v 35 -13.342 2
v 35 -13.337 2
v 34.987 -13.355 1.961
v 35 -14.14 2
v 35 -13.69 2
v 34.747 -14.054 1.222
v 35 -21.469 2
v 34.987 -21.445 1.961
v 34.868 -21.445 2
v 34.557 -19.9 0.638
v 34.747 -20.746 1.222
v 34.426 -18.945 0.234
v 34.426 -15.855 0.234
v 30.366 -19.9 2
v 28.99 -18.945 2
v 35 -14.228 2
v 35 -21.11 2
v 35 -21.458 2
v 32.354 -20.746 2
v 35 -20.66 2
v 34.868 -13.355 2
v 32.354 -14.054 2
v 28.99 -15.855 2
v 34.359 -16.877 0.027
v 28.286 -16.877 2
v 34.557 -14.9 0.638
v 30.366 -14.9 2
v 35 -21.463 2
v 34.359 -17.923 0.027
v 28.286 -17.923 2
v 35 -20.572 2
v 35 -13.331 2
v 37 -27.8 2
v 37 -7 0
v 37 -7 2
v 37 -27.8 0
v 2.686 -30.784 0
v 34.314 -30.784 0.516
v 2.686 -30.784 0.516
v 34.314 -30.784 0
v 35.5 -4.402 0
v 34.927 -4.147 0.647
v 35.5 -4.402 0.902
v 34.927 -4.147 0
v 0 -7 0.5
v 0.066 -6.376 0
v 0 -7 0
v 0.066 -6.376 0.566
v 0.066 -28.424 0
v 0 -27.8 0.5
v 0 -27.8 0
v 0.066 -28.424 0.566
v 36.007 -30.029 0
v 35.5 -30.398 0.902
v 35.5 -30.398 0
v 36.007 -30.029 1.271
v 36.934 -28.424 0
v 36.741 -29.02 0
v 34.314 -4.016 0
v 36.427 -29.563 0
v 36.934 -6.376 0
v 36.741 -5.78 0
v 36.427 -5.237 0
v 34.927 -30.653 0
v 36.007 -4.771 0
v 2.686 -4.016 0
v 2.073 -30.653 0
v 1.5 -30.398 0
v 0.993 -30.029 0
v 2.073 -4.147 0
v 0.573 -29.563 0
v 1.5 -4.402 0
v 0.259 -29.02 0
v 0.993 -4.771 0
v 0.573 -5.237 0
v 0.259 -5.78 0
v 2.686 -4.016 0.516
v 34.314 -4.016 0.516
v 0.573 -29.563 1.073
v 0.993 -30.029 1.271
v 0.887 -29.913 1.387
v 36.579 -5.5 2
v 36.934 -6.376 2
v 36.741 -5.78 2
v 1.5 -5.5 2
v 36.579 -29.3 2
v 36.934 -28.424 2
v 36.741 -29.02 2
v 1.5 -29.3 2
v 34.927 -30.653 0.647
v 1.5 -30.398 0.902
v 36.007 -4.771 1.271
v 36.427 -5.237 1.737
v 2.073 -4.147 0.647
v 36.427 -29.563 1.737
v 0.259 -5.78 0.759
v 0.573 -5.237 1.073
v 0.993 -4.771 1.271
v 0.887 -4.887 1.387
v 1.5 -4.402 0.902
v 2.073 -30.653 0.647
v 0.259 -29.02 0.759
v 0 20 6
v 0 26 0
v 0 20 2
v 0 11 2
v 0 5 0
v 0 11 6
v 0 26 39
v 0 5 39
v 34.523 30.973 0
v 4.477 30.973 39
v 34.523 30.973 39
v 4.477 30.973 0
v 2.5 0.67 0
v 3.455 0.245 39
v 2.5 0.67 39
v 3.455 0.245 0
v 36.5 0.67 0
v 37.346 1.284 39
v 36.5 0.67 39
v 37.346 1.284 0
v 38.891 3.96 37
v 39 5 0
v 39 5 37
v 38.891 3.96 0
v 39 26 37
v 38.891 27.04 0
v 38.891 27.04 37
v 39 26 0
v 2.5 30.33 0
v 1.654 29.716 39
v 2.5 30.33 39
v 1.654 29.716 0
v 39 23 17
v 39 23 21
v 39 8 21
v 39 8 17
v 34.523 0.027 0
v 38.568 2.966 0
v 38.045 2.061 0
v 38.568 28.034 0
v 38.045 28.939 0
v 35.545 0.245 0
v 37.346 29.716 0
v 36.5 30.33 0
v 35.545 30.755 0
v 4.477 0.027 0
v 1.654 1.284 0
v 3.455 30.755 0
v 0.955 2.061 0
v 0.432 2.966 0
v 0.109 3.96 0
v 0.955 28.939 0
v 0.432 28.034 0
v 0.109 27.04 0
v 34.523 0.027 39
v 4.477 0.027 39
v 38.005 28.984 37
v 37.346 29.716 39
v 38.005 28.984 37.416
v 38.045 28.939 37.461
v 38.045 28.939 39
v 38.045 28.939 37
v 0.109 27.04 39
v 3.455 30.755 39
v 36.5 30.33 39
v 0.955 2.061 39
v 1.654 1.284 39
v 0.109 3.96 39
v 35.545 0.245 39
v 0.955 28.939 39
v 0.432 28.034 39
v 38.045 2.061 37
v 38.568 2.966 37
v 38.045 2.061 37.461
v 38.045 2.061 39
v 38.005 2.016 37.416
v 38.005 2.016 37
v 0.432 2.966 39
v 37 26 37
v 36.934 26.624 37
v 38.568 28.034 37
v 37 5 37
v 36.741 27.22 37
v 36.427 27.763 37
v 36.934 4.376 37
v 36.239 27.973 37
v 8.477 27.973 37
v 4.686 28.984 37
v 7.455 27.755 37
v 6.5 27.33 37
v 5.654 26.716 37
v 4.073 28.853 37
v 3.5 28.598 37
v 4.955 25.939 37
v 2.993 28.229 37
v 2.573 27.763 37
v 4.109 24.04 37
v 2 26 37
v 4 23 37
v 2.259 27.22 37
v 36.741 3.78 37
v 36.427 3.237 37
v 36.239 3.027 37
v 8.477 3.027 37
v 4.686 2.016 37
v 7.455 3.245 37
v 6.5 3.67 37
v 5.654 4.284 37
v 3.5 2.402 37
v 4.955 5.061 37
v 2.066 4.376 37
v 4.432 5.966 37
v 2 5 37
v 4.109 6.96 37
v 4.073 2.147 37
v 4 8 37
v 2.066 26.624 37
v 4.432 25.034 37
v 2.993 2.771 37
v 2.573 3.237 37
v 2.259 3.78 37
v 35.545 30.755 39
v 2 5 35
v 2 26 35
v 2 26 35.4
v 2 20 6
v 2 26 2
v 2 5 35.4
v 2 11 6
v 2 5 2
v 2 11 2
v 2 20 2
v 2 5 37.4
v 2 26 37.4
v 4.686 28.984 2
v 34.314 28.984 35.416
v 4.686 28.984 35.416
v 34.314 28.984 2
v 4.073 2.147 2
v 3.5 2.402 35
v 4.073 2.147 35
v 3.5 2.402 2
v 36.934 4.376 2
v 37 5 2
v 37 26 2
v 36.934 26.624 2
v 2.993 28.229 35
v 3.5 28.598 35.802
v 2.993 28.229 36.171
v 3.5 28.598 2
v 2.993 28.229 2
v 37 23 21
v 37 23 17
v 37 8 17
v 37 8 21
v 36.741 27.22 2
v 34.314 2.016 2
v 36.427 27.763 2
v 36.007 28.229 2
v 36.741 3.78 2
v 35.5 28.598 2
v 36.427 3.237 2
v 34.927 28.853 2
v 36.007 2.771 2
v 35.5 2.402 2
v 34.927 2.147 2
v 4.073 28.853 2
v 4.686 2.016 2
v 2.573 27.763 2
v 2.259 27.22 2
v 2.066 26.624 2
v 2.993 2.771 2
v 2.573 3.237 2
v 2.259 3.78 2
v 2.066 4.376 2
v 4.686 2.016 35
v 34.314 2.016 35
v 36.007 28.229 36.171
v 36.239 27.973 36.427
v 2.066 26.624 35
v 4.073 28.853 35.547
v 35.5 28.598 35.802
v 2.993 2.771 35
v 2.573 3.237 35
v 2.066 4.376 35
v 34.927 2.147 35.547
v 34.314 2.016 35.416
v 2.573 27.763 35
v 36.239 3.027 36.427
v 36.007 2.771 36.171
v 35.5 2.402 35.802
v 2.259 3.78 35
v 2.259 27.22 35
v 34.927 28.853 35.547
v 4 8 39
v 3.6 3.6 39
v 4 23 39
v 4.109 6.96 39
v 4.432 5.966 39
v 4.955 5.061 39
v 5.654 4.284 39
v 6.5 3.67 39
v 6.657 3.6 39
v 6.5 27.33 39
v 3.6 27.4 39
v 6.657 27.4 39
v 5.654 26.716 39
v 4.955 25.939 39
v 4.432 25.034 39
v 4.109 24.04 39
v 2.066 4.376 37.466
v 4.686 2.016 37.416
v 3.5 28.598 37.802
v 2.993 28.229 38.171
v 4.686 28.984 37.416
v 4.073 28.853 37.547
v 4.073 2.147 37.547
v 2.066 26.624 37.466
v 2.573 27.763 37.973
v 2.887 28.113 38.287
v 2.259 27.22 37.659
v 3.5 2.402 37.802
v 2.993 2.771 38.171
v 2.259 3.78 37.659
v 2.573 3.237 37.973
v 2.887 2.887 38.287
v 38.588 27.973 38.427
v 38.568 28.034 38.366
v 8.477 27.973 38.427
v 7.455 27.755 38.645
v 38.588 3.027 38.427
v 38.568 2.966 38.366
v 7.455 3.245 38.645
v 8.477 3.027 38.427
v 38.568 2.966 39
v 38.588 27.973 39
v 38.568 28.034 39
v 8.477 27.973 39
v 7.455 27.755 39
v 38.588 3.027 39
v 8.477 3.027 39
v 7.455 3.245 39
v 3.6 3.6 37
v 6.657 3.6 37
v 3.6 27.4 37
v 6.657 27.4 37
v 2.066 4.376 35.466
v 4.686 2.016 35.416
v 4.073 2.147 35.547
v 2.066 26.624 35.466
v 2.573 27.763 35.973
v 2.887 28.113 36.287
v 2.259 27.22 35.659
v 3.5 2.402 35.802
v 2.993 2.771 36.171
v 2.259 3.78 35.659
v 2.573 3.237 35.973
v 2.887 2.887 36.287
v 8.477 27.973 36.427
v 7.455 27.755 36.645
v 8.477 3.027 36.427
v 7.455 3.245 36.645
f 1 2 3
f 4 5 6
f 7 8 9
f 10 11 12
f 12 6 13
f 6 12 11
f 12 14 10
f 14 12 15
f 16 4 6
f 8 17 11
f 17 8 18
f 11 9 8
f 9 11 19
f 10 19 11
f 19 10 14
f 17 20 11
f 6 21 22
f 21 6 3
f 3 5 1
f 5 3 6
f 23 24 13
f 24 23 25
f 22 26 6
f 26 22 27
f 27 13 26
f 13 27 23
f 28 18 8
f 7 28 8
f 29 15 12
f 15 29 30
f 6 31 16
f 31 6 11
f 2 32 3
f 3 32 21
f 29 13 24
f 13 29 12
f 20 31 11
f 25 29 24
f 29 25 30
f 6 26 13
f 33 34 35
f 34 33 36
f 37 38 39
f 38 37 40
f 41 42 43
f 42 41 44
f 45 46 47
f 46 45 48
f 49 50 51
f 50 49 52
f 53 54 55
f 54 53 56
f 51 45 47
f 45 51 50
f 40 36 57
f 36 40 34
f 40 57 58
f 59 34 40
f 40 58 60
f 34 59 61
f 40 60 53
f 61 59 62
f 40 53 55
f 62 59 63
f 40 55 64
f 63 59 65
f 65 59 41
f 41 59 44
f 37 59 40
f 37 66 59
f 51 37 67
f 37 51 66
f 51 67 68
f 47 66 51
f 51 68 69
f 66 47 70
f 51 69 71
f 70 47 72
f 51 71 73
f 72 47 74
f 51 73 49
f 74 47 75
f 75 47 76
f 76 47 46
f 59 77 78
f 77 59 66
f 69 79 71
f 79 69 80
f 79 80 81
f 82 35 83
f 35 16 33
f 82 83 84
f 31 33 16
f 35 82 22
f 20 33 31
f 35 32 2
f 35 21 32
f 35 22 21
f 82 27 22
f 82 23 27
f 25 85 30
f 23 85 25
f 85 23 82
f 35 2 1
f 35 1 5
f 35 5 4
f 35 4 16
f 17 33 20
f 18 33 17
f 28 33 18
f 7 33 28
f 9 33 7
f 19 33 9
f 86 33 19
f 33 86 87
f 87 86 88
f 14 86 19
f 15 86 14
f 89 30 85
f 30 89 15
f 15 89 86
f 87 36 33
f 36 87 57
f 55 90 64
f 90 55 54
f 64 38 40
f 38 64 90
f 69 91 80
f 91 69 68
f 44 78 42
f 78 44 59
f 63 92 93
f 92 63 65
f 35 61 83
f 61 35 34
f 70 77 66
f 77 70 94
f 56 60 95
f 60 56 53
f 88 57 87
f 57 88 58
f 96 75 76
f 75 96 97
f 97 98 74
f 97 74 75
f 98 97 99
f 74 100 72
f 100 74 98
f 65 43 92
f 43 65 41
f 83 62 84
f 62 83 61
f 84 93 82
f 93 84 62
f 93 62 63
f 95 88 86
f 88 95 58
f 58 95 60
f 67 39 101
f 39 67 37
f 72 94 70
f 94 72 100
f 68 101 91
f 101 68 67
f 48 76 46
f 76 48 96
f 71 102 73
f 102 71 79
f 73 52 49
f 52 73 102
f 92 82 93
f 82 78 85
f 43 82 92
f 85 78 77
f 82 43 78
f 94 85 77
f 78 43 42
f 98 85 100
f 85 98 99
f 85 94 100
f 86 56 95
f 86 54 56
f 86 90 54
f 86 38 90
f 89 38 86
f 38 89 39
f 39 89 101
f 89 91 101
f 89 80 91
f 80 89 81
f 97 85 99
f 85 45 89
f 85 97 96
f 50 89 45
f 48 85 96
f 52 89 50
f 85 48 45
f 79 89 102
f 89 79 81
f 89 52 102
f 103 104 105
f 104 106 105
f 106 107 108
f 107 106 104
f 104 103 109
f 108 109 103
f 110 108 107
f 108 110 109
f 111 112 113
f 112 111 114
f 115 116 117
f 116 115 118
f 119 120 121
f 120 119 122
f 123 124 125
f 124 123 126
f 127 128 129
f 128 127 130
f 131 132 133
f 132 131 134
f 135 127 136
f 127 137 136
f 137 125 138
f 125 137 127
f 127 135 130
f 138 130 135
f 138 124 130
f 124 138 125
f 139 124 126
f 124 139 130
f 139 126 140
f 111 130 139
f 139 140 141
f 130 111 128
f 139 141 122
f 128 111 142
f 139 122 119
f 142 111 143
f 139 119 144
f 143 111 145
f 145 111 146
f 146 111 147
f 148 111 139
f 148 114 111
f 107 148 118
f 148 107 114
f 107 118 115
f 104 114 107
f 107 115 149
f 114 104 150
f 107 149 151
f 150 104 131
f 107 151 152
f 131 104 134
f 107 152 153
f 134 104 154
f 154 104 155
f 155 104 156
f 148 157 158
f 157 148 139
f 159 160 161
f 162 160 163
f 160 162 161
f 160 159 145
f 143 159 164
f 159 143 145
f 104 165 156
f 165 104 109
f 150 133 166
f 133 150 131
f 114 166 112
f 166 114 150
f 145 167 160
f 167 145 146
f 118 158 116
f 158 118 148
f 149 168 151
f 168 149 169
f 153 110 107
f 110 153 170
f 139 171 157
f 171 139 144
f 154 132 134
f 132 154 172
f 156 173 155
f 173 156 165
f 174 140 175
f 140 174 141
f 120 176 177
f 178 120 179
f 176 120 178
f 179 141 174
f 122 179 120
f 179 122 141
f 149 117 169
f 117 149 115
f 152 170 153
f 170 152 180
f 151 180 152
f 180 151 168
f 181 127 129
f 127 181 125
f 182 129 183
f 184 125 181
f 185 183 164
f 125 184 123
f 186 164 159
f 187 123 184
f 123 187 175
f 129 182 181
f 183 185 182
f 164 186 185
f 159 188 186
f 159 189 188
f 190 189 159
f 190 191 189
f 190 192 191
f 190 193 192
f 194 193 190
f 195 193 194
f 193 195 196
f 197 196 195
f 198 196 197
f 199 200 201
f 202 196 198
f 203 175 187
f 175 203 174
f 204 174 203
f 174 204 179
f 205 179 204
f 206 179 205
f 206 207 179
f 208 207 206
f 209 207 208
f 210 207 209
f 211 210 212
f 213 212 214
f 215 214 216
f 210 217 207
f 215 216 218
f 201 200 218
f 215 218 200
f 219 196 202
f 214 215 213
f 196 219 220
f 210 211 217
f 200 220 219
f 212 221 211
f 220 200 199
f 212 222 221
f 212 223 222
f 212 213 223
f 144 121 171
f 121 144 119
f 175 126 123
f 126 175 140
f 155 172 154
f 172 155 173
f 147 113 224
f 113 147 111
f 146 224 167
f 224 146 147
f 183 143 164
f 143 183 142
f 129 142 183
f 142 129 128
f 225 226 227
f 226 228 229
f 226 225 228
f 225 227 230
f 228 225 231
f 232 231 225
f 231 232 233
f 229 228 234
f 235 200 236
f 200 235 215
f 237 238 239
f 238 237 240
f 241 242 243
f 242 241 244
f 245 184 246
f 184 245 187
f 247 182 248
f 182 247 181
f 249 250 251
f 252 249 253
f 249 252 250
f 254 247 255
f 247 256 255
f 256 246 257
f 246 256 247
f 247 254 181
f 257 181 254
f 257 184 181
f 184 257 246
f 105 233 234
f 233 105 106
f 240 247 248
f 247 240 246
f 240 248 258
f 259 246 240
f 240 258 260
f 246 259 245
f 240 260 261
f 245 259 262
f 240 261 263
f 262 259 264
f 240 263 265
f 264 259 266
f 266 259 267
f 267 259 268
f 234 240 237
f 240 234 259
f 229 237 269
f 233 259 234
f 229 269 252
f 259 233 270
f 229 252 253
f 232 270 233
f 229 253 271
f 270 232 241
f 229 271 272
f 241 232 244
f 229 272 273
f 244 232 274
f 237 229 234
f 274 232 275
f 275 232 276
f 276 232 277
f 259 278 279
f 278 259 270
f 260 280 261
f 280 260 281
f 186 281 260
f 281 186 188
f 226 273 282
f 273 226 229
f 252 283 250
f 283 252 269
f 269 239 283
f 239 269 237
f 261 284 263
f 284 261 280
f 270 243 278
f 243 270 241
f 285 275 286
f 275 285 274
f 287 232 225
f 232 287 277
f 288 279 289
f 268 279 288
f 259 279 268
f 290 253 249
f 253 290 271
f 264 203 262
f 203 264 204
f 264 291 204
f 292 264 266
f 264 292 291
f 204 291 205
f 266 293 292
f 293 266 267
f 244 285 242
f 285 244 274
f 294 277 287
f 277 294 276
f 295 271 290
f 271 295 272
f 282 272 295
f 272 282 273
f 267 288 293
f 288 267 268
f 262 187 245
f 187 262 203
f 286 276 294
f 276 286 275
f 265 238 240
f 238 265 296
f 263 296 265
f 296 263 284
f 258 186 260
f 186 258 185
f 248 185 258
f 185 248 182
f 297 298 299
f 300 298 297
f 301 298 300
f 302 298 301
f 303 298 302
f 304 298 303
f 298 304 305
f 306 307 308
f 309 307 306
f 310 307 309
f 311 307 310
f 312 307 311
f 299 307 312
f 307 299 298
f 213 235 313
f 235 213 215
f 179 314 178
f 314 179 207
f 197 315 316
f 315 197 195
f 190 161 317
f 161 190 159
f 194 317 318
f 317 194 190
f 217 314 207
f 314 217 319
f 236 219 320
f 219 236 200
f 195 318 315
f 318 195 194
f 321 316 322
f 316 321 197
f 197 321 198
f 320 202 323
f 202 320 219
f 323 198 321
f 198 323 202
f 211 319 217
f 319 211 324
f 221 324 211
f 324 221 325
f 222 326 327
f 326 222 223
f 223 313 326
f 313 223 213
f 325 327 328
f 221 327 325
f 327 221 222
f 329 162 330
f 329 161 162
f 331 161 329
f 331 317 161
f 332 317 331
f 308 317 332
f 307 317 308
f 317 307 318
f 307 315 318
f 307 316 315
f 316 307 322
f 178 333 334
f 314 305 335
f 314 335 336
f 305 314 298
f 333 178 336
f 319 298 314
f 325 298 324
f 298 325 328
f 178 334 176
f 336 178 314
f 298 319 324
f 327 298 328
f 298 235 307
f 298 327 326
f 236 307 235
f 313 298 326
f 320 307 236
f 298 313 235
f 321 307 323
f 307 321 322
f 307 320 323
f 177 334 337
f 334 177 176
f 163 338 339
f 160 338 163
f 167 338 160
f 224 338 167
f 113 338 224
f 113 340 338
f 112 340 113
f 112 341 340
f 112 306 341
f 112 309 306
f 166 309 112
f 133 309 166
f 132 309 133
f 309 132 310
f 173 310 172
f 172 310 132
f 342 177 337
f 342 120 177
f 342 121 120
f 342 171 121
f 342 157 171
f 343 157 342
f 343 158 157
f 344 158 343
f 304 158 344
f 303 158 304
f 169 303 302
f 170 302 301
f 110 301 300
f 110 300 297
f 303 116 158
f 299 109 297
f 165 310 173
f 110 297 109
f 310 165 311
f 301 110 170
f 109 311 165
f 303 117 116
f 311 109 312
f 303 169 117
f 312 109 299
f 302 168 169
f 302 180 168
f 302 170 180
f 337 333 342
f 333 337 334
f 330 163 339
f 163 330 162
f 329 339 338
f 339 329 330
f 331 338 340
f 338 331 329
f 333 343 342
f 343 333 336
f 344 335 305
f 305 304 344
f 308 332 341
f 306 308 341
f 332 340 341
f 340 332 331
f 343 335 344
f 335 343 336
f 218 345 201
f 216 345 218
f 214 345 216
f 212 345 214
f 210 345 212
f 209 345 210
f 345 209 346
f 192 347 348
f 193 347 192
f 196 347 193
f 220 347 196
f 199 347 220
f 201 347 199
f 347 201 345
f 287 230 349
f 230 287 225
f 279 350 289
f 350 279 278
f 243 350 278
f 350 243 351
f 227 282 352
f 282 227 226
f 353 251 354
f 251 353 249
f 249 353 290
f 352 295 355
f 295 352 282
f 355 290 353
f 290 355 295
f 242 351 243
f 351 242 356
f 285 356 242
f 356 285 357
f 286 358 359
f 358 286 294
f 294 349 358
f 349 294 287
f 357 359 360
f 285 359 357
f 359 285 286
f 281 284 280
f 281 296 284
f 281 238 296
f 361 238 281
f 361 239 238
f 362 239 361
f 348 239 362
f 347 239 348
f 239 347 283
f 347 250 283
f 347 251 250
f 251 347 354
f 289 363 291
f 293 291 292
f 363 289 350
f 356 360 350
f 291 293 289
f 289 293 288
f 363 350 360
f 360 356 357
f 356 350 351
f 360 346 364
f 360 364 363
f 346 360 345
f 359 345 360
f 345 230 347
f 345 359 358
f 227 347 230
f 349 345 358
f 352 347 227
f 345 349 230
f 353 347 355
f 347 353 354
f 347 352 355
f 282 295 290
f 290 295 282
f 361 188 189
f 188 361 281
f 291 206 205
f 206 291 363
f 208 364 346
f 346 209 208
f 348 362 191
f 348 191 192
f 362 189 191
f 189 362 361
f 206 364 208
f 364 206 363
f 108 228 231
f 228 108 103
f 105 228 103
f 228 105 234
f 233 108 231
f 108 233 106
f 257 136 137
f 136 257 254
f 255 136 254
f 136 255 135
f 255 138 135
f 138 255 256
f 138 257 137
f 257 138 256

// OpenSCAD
itemsShown="both"; // [both,box,lid]
wallThickness=2;
bottomThickness=2;
boxLength=35+2*wallThickness;
boxWidth=27+2*wallThickness;
boxHeight=37+bottomThickness;
cornerRadius=5;
lidThickness=2;
lidClearance=0.2;
lidEdgeThickness=0.5;
// openings
openUSBPos = 0;
openUSBh = 5;
openUSBb = 9;
openTempPos = 15;
openTemph = 7;
openTempb = 15;
// Notch in the lid
withNotch=true;
$fn = 128;

showLid();
showBoxAll();

module showBoxAll() {
    difference() 
    {
        showBox();
        translate ([-0.1, boxWidth/2-openUSBb/2,bottomThickness])
            cube([openUSBh,openUSBb,wallThickness*2]);
        translate ([boxLength-wallThickness-.1, boxWidth/2-openTempb/2,bottomThickness+openTempPos])
            cube([openTemph,openTempb,wallThickness*2]);            
    }
}
module showLid(){
	translate ([0, -2*wallThickness, 0]) 
	roundBoxLid(l=boxLength-wallThickness,
				w=boxWidth-2*wallThickness-lidClearance,
				h=lidThickness,
				et=lidEdgeThickness,
				r=cornerRadius-wallThickness,
				notch=withNotch);
}

module showBox(){
	round_box(l=boxLength,
			  w=boxWidth,
			  h=boxHeight,
			  bt=bottomThickness,
			  wt=wallThickness,
			  lt=lidThickness,
			  r=cornerRadius);
}

module round_box(l=40,w=30,h=30,bt=2,wt=2,lt=2,r=5,){
	difference() { 
		round_cube(l=l,w=w,h=h-lt,r=r);
		translate ([wt, wt, bt]) 
		round_cube(l=l-wt*2,w=w-wt*2,h=h,r=r-wt);
	}
	roundBoxRim();
	translate ([0, 0, -wt]) roundBoxRim();
}

module roundBoxRim(l=boxLength,
				   w=boxWidth,
				   h=boxHeight,
				   et=lidEdgeThickness,
				   r=cornerRadius,
				   wt=wallThickness,
				   lt=lidThickness){
	difference() { 
		translate ([0, 0, h-lt]) 
		round_cube(l=l,w=w,h=lt,r=r);
		translate ([wt+lt,wt+lt-et*2,h-lt-0.1]) 
		round_cube(l=l*2,w=w-2*(wt+lt)+4*et,h=lt+0.2,r=r-wt+lt);

		//subtract out a lid to make the ledge
		translate ([wt, w-wt, h-lt-0.1])
		roundBoxLid(l=l*2,w=w-2*wt,h=lt+0.1,wt=wt,t=lt,et=0.5,r=r-wt,notch=false);
	}
}

module roundBoxLid(l=40,w=30,h=3,wt=2,t=2,et=0.5,r=5,notch=true){
	translate ([l, 0, 0]) 
	rotate (a = [0, 0, 180]) 
	difference(){
		round_cube(l=l,w=w,h=h,t=t,r=r);

		translate ([-1, 0, et]) rotate (a = [45, 0, 0])  cube (size = [l+2, h*2, h*2]); 
		translate ([-1, w, et]) rotate (a = [45, 0, 0])  cube (size = [l+2, h*2, h*2]); 
		translate ([l, -1, et]) rotate (a = [45, 0, 90]) cube (size = [w+2, h*2, h*2]); 
		if (notch==true){
			translate([2,w/2,h+0.001]) thumbNotch(10/2,72,t);
		}
	}
}

module thumbNotch(
	thumbR=12/2,
	angle=72,
	notchHeight=2){

	size=10*thumbR;

	rotate([0,0,90])
	difference(){
		translate([0,
					(thumbR*sin(angle)-notchHeight)/tan(angle),
					 thumbR*sin(angle)-notchHeight])
		rotate([angle,0,0])
		cylinder(r=thumbR,h=size,$fn=30);

		translate([-size,-size,0])
		cube(size*2);
	}
}

module round_cube(l=40,w=30,h=20,r=5,t=0,$fn=30){
	hull(){ 
		translate ([r, r, 0]) cylinder (h = h, r=r);
		translate ([r, w-r, 0]) cylinder (h = h, r=r);
		translate ([l-r,w-r, 0]) cylinder (h = h, r=r);
		translate ([l-r, r, 0]) cylinder (h = h, r=r);
	}
}
